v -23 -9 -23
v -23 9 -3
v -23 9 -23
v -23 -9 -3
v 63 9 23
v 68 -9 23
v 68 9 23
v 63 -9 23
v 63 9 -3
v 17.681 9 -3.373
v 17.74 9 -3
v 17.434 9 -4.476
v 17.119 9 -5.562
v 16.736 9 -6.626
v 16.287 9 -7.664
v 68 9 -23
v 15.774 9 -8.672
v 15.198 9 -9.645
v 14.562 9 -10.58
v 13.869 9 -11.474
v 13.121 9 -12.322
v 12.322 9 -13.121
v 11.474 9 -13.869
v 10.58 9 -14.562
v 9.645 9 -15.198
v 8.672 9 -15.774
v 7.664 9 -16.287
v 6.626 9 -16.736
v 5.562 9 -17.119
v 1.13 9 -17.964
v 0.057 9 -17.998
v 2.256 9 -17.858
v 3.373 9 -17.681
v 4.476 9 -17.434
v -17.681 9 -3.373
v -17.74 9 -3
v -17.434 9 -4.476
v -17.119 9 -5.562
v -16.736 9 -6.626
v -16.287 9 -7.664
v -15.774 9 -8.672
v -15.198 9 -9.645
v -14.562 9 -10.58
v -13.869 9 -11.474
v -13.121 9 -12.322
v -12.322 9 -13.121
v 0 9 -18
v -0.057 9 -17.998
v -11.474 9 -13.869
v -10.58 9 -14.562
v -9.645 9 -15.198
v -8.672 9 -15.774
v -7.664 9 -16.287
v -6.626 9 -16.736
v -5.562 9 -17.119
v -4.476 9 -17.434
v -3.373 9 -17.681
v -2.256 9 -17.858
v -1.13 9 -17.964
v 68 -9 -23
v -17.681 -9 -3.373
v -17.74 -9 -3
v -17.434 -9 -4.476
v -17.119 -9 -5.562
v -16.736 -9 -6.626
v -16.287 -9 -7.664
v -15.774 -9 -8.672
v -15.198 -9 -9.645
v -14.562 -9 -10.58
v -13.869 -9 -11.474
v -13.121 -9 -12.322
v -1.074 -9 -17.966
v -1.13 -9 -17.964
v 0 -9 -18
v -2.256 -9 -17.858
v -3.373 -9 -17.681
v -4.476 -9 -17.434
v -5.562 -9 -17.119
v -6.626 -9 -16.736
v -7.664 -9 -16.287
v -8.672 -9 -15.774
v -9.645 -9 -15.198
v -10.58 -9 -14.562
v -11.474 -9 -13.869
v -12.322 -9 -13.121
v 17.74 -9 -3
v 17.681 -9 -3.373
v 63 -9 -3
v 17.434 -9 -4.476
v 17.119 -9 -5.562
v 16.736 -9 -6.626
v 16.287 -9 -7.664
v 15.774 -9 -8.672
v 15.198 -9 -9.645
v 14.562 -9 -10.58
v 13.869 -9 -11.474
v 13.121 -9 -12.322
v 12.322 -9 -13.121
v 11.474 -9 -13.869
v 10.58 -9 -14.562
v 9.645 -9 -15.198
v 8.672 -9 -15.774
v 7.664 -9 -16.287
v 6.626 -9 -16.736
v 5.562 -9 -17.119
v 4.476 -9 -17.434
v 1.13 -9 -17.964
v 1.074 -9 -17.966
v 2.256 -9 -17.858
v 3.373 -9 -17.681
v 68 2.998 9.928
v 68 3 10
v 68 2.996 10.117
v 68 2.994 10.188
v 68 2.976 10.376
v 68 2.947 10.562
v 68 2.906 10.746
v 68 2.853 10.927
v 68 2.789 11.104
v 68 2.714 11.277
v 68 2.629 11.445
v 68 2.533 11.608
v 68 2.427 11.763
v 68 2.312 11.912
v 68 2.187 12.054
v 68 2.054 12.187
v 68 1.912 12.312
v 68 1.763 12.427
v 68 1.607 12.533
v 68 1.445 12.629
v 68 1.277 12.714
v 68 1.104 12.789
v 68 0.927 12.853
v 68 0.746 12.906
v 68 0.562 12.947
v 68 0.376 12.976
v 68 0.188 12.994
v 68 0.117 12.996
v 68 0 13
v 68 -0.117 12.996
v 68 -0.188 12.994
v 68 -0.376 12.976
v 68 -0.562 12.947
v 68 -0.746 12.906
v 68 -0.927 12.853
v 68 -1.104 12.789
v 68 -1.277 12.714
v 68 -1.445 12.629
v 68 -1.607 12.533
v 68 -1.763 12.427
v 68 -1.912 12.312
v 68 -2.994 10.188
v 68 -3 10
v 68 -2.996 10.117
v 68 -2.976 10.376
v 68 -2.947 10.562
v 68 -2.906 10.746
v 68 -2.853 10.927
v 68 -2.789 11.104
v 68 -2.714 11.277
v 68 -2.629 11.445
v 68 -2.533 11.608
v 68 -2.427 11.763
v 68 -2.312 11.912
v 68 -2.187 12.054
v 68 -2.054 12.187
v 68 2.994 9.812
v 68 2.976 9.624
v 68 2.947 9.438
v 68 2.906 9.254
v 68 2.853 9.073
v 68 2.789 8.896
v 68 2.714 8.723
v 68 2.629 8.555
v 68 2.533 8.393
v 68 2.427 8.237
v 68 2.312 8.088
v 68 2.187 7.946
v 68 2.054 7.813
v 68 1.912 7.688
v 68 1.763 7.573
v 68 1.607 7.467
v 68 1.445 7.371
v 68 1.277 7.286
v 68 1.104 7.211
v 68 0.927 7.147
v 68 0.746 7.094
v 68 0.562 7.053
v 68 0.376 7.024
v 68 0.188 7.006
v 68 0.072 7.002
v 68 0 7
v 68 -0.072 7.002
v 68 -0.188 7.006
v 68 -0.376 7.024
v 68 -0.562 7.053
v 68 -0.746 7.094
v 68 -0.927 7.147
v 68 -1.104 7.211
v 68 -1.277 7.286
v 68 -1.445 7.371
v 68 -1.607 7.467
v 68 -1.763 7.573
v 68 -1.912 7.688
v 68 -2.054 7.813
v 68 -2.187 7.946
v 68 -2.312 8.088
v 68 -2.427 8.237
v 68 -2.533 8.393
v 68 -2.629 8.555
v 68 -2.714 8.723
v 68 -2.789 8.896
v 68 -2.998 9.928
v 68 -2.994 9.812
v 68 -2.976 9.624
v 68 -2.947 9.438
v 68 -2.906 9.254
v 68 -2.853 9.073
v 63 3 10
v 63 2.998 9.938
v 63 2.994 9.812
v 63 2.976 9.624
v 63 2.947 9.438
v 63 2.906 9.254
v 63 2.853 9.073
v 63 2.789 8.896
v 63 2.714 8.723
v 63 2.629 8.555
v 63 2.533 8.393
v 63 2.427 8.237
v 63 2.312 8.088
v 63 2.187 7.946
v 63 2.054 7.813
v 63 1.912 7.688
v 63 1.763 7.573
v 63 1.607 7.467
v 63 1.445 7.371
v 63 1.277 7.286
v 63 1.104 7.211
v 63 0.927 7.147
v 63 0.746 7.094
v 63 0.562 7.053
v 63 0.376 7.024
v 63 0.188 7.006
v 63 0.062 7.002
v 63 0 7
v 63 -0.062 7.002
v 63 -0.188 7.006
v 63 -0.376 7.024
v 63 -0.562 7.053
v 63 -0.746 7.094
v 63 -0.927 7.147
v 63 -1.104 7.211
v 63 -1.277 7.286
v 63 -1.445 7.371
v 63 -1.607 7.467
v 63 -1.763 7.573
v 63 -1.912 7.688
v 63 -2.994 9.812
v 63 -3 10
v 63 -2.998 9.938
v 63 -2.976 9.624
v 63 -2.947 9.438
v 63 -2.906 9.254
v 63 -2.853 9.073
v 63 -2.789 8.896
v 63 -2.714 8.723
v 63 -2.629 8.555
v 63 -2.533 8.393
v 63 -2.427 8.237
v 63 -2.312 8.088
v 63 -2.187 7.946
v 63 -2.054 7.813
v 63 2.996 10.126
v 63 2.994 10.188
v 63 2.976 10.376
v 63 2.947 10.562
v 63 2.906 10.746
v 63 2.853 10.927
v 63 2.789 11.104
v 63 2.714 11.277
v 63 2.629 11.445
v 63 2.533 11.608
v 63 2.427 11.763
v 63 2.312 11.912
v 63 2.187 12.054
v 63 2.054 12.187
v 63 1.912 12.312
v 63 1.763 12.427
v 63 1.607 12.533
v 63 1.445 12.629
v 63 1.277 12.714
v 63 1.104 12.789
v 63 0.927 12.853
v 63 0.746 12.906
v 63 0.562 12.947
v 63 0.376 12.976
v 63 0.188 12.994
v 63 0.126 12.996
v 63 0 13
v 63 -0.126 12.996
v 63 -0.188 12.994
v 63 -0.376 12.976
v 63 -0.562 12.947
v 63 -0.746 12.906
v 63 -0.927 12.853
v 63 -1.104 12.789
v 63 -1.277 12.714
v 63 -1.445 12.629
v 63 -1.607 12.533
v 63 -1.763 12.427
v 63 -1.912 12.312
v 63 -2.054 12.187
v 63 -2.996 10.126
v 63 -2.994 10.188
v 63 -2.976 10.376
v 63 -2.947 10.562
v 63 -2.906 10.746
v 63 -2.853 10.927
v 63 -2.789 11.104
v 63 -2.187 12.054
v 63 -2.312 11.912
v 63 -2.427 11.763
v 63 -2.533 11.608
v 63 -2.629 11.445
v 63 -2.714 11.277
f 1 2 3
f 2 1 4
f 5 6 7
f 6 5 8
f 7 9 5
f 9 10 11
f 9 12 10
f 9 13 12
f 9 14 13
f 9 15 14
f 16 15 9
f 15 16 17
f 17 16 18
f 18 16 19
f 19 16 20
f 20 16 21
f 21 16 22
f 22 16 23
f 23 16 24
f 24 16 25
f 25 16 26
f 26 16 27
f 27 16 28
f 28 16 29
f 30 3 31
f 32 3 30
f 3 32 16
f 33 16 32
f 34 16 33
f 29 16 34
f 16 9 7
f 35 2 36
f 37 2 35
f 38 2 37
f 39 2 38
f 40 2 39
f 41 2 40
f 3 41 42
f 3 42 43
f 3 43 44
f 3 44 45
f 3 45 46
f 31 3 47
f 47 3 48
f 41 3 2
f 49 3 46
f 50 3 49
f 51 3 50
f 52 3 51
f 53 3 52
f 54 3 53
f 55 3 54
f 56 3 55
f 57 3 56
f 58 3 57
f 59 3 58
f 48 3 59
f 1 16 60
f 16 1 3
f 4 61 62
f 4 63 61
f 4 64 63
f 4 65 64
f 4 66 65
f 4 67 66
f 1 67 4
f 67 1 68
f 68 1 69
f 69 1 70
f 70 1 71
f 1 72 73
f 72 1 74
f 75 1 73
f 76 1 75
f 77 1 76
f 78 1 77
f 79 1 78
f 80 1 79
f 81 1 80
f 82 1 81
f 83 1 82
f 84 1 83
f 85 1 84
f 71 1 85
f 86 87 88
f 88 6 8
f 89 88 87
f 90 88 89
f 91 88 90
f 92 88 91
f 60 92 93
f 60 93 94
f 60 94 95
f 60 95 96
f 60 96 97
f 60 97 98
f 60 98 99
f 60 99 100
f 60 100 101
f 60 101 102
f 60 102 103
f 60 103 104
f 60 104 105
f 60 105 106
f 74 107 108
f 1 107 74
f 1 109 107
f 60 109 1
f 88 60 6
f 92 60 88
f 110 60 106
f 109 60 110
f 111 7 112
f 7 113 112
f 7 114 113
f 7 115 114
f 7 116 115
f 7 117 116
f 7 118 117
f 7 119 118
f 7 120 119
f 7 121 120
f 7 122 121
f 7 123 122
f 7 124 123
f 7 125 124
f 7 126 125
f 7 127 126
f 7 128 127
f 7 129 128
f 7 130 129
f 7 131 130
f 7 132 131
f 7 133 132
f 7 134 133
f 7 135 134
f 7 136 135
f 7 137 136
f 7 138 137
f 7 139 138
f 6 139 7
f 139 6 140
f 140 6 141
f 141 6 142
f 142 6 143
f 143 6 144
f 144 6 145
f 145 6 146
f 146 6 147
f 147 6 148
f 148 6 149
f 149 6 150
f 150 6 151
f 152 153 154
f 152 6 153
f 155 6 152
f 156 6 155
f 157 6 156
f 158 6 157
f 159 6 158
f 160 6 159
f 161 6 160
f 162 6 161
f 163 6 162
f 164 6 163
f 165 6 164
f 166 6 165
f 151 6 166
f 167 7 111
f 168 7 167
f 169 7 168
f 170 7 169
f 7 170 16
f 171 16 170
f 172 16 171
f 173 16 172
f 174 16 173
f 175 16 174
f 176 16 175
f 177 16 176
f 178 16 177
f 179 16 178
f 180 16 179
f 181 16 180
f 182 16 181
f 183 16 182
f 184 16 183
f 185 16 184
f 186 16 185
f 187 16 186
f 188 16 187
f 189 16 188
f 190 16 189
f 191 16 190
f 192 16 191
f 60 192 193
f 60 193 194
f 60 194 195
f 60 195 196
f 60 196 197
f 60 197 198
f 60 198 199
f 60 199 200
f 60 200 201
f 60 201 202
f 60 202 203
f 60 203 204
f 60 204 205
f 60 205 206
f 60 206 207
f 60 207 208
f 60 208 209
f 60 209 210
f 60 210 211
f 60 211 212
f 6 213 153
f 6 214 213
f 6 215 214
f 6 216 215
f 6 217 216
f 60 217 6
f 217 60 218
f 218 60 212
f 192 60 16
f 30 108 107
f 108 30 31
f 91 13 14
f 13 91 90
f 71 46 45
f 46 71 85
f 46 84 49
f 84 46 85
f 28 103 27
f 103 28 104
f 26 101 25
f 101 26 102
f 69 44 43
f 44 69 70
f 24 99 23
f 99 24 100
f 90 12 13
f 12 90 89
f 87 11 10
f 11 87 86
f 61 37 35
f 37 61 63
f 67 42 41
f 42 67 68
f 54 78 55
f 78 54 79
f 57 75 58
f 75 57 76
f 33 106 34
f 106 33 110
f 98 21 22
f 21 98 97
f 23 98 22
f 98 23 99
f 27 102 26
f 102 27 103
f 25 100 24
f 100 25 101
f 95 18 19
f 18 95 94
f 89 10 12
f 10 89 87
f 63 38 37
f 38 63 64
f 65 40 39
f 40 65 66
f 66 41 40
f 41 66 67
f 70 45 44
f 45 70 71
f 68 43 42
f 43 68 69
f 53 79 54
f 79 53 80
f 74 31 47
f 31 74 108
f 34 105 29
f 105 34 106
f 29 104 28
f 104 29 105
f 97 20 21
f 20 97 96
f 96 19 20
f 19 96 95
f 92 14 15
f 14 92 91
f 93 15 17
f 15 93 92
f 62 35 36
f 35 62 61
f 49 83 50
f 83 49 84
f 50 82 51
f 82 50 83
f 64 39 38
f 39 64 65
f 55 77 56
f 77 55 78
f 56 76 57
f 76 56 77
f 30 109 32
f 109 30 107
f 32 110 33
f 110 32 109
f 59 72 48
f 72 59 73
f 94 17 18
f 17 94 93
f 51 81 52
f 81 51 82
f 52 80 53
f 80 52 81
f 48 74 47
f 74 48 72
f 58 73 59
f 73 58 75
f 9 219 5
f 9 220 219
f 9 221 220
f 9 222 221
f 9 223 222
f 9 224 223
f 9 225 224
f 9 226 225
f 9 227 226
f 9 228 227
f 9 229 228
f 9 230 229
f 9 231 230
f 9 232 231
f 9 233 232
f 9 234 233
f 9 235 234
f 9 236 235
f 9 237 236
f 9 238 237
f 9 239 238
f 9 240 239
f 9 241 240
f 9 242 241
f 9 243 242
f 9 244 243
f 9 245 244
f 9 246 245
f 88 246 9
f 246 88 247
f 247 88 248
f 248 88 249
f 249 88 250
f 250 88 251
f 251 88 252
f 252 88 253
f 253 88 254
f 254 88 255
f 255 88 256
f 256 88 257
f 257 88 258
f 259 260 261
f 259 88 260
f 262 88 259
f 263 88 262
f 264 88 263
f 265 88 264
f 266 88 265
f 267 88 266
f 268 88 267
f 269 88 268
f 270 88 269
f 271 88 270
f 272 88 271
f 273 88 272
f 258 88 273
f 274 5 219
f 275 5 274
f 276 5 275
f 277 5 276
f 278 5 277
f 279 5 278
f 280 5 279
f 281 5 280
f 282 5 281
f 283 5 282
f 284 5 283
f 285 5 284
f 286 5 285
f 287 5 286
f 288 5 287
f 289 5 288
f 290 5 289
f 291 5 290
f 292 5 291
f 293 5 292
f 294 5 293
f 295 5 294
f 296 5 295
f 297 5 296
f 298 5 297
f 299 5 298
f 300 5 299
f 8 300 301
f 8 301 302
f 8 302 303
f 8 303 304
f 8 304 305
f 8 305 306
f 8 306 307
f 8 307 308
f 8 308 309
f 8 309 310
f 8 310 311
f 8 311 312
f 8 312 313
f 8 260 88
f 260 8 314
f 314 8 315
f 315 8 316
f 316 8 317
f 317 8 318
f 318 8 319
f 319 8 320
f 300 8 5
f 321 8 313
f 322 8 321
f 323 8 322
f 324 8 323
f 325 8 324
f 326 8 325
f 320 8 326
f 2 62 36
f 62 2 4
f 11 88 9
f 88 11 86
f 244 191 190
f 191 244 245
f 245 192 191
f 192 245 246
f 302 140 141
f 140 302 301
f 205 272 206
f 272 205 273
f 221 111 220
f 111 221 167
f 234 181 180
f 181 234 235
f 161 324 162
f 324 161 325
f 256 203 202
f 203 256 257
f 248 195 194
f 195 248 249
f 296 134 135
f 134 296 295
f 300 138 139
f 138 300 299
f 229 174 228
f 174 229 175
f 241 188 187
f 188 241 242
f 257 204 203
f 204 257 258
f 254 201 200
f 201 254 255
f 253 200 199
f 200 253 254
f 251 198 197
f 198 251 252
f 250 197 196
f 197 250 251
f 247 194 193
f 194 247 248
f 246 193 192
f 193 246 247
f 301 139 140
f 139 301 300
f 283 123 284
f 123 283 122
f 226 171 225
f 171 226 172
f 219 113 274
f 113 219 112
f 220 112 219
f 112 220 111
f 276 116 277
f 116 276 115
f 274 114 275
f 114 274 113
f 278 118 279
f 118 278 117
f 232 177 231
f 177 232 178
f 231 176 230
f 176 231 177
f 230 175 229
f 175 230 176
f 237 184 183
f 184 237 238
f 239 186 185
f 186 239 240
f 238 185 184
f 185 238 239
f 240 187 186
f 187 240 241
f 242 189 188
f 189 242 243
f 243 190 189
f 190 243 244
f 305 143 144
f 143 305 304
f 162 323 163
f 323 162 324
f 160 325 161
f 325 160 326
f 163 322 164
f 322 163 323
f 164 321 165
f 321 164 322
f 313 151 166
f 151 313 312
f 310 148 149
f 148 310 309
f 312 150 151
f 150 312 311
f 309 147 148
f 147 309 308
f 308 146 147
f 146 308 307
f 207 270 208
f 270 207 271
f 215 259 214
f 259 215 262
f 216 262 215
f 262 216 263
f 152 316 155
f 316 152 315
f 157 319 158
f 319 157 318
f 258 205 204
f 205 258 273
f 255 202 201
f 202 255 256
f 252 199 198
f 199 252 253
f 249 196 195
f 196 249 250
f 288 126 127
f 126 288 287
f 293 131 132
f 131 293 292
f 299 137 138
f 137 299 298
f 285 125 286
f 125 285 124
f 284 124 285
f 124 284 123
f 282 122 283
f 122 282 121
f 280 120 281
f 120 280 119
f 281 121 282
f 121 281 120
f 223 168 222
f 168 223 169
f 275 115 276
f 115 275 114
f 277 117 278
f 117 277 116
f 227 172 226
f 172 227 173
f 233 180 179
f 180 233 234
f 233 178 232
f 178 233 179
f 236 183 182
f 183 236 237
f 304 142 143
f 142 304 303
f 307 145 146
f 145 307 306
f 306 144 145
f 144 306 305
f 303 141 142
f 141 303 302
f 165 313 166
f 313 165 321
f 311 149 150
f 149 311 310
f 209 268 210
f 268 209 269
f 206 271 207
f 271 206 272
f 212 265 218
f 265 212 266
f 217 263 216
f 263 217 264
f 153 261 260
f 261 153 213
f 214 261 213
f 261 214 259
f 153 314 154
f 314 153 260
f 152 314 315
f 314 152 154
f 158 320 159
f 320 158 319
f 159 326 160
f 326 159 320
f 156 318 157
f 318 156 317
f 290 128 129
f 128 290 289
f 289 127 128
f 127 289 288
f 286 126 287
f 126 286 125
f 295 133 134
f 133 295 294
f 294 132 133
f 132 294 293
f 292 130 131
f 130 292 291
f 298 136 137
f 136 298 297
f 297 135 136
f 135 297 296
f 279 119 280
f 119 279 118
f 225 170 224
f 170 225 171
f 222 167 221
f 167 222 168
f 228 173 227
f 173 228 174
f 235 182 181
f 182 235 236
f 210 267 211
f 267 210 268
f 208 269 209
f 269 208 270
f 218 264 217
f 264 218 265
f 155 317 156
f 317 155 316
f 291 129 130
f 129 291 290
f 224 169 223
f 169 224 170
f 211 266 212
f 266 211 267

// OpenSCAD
difference(){


union(){
cube([36+10,36/2,36+10],center=true);    
translate([(36/2)+(50/2),0,0])
cube([50,36/2,36+10],center=true);  

}
    rotate([90,0,0])
    cylinder(r=36/2,h=20,$fn=100,center=true);

translate([20,0,20])
cube([36+50,36/2,36+10],center=true); 

translate([80,0,10])
 rotate([0,90,0])
    cylinder(r=6/2,h=100,$fn=100,center=true);
    
}
